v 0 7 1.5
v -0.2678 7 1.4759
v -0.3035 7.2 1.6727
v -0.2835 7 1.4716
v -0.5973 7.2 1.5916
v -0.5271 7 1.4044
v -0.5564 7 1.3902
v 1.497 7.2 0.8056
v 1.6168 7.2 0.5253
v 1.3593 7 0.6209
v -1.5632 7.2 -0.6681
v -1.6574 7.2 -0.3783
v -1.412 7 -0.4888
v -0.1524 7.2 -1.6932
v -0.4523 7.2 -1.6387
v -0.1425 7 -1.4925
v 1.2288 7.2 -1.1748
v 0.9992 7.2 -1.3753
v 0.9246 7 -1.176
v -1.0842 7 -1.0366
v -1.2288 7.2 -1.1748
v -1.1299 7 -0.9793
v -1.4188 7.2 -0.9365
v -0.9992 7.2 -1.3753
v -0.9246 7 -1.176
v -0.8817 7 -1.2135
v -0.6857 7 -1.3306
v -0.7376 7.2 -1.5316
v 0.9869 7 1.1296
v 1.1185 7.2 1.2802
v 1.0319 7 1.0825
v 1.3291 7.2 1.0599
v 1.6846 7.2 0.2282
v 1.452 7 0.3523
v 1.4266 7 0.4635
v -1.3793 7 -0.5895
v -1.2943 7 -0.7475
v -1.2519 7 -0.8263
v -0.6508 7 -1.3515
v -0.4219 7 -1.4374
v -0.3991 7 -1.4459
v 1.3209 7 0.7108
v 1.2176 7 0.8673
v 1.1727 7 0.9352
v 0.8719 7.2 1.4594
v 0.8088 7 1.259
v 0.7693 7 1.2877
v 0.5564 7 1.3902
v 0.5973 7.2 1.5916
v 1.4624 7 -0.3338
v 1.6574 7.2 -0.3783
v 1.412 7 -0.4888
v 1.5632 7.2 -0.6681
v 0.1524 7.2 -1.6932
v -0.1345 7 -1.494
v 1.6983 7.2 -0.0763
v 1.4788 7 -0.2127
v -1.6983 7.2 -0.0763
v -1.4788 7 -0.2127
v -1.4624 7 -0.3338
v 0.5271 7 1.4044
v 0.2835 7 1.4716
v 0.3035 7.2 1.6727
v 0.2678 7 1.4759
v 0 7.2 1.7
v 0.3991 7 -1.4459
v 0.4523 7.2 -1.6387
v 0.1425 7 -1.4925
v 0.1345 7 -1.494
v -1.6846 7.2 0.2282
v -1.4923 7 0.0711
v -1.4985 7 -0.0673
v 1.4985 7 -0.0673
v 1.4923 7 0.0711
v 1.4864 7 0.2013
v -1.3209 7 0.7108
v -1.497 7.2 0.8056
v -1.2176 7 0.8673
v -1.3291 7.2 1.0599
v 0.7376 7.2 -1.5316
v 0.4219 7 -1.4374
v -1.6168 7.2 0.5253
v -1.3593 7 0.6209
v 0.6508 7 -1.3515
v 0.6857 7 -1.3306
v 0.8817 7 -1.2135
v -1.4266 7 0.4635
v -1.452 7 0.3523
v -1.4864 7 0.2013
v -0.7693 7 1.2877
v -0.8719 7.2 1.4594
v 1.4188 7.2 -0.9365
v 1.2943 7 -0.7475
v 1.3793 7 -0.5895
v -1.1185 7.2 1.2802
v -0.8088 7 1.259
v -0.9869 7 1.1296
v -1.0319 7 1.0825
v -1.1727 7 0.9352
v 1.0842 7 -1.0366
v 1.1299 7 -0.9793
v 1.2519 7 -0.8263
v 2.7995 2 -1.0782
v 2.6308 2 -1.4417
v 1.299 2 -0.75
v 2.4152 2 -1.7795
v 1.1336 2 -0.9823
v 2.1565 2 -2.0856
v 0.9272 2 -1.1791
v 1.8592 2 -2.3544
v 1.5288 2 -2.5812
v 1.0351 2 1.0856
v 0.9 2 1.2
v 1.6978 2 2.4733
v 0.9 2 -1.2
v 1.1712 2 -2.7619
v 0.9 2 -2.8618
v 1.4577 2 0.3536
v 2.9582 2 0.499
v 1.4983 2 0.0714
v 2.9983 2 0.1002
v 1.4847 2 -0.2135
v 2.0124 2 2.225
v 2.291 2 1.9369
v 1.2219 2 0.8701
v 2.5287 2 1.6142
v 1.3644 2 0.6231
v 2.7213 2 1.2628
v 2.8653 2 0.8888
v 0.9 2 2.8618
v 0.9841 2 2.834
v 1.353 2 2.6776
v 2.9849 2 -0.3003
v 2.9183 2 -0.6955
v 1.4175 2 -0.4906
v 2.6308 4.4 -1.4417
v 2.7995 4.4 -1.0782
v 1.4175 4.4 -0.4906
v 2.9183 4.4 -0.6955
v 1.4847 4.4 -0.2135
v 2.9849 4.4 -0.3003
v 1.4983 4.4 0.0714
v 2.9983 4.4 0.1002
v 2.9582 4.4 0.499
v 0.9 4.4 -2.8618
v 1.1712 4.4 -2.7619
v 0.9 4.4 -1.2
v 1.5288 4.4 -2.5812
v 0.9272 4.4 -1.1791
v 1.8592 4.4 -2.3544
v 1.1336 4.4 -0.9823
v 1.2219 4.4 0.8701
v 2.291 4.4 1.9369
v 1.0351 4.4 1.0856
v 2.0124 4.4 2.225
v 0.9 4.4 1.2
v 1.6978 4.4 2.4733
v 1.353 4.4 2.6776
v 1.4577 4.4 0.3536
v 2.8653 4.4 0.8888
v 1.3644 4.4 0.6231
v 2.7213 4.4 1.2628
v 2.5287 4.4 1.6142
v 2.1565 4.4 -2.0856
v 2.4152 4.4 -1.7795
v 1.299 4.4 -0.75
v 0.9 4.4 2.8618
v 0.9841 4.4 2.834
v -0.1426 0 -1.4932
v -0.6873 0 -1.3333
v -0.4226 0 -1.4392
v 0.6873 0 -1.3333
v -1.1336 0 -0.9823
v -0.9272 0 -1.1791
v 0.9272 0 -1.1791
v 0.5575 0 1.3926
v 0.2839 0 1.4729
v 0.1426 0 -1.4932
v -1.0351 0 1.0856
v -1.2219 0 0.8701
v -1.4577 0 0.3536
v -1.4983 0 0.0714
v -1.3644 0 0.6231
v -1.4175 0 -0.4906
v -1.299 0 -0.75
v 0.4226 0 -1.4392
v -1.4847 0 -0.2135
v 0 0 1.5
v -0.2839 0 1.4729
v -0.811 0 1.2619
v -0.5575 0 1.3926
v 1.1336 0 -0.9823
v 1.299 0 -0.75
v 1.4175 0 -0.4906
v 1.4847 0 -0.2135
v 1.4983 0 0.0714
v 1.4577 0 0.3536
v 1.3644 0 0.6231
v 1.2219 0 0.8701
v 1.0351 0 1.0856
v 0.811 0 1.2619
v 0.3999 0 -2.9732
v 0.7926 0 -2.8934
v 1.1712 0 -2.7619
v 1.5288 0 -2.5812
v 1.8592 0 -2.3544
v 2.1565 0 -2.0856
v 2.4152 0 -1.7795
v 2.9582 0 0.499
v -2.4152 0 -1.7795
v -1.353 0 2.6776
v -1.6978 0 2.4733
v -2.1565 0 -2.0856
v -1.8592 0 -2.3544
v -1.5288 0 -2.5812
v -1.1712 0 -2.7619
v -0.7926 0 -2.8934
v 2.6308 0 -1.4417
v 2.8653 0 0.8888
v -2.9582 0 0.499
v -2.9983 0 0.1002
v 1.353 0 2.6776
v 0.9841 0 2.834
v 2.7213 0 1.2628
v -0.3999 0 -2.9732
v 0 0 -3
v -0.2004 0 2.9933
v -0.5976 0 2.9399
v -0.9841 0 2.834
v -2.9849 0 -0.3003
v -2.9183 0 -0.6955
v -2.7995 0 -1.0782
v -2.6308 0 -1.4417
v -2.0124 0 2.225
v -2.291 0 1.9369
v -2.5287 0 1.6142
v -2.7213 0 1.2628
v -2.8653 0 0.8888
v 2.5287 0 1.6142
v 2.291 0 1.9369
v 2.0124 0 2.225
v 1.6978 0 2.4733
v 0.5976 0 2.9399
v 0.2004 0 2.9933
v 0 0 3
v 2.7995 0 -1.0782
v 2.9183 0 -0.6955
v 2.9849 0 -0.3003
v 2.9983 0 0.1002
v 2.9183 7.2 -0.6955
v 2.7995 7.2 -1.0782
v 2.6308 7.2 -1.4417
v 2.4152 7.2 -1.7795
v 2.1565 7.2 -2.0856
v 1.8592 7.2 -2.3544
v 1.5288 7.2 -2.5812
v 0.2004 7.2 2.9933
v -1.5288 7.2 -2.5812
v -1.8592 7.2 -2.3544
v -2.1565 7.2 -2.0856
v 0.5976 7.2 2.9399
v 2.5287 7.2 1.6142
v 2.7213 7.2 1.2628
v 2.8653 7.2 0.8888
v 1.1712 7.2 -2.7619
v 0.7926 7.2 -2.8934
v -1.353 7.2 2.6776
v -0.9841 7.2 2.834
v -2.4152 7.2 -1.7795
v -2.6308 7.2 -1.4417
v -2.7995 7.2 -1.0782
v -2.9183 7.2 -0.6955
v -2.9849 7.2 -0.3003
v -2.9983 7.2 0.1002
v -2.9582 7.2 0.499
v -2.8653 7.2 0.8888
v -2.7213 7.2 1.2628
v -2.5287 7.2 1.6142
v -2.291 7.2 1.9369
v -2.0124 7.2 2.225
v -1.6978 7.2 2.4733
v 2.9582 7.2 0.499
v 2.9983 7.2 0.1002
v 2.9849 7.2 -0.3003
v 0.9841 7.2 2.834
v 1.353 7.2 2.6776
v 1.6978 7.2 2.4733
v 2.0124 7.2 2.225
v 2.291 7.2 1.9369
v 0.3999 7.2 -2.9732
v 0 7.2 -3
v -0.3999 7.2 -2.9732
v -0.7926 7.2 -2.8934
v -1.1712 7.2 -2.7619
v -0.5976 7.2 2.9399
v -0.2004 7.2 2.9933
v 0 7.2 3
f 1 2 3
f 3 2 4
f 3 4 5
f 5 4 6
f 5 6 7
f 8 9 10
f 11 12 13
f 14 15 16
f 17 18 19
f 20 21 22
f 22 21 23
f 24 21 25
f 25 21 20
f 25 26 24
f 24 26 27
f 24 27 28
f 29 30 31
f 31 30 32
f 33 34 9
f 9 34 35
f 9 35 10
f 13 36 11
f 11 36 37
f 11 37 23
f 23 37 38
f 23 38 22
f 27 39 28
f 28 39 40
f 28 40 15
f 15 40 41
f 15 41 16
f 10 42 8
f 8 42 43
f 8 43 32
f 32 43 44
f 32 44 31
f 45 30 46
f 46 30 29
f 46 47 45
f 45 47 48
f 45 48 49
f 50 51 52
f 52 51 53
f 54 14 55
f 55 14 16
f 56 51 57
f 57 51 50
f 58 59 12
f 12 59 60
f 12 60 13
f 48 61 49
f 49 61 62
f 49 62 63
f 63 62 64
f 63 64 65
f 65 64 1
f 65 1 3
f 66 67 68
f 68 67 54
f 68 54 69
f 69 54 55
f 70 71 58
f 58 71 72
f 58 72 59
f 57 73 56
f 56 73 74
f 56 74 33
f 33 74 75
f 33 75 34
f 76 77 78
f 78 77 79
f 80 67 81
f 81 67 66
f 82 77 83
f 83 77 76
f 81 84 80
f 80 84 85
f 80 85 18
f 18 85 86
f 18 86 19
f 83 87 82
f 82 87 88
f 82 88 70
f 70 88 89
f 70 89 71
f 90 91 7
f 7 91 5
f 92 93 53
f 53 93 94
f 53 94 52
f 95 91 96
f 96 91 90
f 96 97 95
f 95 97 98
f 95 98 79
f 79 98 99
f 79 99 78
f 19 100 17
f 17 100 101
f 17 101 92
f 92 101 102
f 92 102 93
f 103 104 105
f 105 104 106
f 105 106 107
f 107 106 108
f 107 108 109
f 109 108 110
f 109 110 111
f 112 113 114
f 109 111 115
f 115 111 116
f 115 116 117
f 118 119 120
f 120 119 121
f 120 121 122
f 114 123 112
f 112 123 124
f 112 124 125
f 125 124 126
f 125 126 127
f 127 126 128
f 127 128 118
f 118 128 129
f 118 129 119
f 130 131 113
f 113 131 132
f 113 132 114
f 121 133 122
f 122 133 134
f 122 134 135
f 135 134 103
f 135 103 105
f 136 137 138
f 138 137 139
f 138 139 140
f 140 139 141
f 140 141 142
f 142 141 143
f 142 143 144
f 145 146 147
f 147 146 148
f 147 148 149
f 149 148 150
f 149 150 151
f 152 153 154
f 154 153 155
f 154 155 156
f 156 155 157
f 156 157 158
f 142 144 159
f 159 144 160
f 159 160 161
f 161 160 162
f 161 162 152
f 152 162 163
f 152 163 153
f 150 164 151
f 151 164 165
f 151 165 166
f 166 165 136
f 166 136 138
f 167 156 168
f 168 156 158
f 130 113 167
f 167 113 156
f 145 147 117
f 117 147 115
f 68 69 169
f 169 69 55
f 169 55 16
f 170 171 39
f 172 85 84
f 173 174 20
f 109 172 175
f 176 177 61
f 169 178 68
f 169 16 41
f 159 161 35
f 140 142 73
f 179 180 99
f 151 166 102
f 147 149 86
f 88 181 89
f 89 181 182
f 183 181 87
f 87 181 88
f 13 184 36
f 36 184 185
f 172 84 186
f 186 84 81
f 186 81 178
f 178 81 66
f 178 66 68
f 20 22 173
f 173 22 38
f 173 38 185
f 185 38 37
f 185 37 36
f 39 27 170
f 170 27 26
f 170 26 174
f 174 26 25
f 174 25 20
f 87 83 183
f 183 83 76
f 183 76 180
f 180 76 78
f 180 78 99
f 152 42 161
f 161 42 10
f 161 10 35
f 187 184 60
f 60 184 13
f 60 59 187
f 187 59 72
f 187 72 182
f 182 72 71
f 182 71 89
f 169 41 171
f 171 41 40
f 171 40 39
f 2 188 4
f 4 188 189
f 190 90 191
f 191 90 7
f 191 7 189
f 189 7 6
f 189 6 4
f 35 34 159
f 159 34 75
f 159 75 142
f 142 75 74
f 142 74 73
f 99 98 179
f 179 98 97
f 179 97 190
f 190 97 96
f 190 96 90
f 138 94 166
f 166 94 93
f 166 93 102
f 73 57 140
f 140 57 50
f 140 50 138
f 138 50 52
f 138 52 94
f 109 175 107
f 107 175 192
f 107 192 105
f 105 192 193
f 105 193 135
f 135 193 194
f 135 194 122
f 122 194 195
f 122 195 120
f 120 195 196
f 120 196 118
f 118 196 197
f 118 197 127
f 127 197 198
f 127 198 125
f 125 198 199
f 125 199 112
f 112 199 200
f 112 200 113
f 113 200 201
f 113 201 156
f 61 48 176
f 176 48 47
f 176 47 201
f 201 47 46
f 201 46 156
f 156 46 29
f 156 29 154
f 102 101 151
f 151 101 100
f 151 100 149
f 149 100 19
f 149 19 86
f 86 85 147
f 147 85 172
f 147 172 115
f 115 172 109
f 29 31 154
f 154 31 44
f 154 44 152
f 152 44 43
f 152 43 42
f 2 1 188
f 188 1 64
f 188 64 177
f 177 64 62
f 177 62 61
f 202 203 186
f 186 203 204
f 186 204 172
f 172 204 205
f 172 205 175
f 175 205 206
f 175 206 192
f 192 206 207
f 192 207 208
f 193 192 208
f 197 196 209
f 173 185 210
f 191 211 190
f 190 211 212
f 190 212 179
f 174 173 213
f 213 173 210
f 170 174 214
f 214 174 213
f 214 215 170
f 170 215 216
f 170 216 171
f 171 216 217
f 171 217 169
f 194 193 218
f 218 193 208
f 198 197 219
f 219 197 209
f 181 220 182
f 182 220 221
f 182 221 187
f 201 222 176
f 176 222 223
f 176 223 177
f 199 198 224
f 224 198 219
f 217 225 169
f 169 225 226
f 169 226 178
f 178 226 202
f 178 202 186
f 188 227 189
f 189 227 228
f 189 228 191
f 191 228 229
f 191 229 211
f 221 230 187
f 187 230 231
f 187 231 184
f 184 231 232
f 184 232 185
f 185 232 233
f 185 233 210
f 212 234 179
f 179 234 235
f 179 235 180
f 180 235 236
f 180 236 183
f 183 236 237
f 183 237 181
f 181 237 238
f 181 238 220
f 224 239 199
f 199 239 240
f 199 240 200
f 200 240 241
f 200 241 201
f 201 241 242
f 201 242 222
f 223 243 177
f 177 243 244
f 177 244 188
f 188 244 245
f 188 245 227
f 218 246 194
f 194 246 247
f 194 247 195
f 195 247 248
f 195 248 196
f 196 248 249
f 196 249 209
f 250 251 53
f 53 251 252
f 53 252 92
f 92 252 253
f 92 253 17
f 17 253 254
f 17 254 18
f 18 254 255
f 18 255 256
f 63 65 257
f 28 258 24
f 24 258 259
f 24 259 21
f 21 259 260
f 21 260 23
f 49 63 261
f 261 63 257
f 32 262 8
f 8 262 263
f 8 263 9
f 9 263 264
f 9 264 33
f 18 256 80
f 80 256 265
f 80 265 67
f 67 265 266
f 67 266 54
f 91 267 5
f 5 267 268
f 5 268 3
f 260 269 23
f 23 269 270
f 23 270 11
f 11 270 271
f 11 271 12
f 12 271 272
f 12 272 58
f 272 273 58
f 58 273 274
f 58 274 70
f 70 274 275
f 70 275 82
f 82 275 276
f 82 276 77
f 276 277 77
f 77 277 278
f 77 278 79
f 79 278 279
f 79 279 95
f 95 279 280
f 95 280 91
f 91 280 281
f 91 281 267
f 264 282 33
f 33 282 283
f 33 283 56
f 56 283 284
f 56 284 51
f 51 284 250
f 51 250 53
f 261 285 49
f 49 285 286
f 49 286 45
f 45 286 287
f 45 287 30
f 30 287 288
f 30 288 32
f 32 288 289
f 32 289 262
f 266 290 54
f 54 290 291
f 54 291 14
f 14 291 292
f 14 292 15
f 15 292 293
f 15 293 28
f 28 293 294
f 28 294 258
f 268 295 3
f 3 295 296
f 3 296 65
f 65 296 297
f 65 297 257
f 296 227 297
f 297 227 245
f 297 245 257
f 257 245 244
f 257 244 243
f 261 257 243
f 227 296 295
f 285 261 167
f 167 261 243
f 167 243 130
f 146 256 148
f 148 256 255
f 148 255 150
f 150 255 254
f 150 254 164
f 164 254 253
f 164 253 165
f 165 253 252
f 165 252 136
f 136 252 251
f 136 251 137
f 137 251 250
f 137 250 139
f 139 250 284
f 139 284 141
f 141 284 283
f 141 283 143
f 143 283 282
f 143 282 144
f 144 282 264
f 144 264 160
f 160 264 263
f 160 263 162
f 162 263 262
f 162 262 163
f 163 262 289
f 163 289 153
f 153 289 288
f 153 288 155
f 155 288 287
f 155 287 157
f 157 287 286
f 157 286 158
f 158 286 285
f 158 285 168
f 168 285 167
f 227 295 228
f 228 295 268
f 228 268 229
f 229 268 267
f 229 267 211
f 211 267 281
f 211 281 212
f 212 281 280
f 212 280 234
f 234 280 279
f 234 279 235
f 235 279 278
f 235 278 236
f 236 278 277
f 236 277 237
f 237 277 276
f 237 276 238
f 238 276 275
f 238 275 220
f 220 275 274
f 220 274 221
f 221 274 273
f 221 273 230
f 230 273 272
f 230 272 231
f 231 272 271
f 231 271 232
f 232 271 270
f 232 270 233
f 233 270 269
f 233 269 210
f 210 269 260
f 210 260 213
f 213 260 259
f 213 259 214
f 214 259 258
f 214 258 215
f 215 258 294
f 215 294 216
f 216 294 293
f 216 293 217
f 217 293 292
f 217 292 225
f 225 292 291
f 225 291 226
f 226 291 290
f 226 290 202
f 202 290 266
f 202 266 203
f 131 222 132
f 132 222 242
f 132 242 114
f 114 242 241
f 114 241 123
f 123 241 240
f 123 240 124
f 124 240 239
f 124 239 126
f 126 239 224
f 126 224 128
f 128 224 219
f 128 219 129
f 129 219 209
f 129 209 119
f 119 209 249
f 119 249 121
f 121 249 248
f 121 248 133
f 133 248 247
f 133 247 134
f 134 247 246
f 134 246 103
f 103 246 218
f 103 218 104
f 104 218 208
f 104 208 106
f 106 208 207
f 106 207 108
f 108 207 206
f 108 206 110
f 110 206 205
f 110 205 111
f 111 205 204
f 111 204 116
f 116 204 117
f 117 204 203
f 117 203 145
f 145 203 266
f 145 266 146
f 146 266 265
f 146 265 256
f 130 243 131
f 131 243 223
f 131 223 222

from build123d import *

# Parameters (mm, degrees)
SKETCH1_R               = 3
BOSS_EXTRUDE1_DEPTH     = 7.2
CUT_EXTRUDE1_REACH      = 9.2
SKETCH2_R               = 1.5
SKETCH3_W               = 2.1
SKETCH3_H               = 2.4
CUT_EXTRUDE2_DEPTH      = 4
CUT_EXTRUDE2_DEPTH_BACK = 4
CHAMFER1_SIZE           = 0.2


with BuildPart() as part:
    # Sketch1 → Boss-Extrude1 (new body)
    with BuildSketch(Plane(origin=(0, 0, 0), x_dir=(1, 0, 0), z_dir=(0, 1, 0))):
        Circle(SKETCH1_R)
    extrude(amount=BOSS_EXTRUDE1_DEPTH)

    # Sketch2 → Cut-Extrude1 (cut, up to next)
    with BuildSketch(Plane(origin=(0, 7.2, 0), x_dir=(1, 0, 0), z_dir=(0, 1, 0)), mode=Mode.PRIVATE) as cut_extrude1_sk1:
        Circle(SKETCH2_R)
    cut_extrude1_tool1 = extrude(cut_extrude1_sk1.sketch, amount=-CUT_EXTRUDE1_REACH, mode=Mode.PRIVATE) & part.part
    add(cut_extrude1_tool1.solids().sort_by_distance((0, 7.2, 0))[0], mode=Mode.SUBTRACT)

    # Sketch3 → Cut-Extrude2 (cut, two sides)
    with BuildSketch(Plane.XY) as cut_extrude2_sk:
        with Locations((1.95, 3.2)):
            Rectangle(SKETCH3_W, SKETCH3_H)
    extrude(amount=CUT_EXTRUDE2_DEPTH, mode=Mode.SUBTRACT)
    extrude(cut_extrude2_sk.sketch, amount=-CUT_EXTRUDE2_DEPTH_BACK, mode=Mode.SUBTRACT)

    # Chamfer1
    chamfer1_edges = [part.edges().sort_by_distance(p)[0] for p in [
        (-1.5, 7.2, 0),
    ]]
    chamfer(chamfer1_edges, length=CHAMFER1_SIZE)


solid = part.part
